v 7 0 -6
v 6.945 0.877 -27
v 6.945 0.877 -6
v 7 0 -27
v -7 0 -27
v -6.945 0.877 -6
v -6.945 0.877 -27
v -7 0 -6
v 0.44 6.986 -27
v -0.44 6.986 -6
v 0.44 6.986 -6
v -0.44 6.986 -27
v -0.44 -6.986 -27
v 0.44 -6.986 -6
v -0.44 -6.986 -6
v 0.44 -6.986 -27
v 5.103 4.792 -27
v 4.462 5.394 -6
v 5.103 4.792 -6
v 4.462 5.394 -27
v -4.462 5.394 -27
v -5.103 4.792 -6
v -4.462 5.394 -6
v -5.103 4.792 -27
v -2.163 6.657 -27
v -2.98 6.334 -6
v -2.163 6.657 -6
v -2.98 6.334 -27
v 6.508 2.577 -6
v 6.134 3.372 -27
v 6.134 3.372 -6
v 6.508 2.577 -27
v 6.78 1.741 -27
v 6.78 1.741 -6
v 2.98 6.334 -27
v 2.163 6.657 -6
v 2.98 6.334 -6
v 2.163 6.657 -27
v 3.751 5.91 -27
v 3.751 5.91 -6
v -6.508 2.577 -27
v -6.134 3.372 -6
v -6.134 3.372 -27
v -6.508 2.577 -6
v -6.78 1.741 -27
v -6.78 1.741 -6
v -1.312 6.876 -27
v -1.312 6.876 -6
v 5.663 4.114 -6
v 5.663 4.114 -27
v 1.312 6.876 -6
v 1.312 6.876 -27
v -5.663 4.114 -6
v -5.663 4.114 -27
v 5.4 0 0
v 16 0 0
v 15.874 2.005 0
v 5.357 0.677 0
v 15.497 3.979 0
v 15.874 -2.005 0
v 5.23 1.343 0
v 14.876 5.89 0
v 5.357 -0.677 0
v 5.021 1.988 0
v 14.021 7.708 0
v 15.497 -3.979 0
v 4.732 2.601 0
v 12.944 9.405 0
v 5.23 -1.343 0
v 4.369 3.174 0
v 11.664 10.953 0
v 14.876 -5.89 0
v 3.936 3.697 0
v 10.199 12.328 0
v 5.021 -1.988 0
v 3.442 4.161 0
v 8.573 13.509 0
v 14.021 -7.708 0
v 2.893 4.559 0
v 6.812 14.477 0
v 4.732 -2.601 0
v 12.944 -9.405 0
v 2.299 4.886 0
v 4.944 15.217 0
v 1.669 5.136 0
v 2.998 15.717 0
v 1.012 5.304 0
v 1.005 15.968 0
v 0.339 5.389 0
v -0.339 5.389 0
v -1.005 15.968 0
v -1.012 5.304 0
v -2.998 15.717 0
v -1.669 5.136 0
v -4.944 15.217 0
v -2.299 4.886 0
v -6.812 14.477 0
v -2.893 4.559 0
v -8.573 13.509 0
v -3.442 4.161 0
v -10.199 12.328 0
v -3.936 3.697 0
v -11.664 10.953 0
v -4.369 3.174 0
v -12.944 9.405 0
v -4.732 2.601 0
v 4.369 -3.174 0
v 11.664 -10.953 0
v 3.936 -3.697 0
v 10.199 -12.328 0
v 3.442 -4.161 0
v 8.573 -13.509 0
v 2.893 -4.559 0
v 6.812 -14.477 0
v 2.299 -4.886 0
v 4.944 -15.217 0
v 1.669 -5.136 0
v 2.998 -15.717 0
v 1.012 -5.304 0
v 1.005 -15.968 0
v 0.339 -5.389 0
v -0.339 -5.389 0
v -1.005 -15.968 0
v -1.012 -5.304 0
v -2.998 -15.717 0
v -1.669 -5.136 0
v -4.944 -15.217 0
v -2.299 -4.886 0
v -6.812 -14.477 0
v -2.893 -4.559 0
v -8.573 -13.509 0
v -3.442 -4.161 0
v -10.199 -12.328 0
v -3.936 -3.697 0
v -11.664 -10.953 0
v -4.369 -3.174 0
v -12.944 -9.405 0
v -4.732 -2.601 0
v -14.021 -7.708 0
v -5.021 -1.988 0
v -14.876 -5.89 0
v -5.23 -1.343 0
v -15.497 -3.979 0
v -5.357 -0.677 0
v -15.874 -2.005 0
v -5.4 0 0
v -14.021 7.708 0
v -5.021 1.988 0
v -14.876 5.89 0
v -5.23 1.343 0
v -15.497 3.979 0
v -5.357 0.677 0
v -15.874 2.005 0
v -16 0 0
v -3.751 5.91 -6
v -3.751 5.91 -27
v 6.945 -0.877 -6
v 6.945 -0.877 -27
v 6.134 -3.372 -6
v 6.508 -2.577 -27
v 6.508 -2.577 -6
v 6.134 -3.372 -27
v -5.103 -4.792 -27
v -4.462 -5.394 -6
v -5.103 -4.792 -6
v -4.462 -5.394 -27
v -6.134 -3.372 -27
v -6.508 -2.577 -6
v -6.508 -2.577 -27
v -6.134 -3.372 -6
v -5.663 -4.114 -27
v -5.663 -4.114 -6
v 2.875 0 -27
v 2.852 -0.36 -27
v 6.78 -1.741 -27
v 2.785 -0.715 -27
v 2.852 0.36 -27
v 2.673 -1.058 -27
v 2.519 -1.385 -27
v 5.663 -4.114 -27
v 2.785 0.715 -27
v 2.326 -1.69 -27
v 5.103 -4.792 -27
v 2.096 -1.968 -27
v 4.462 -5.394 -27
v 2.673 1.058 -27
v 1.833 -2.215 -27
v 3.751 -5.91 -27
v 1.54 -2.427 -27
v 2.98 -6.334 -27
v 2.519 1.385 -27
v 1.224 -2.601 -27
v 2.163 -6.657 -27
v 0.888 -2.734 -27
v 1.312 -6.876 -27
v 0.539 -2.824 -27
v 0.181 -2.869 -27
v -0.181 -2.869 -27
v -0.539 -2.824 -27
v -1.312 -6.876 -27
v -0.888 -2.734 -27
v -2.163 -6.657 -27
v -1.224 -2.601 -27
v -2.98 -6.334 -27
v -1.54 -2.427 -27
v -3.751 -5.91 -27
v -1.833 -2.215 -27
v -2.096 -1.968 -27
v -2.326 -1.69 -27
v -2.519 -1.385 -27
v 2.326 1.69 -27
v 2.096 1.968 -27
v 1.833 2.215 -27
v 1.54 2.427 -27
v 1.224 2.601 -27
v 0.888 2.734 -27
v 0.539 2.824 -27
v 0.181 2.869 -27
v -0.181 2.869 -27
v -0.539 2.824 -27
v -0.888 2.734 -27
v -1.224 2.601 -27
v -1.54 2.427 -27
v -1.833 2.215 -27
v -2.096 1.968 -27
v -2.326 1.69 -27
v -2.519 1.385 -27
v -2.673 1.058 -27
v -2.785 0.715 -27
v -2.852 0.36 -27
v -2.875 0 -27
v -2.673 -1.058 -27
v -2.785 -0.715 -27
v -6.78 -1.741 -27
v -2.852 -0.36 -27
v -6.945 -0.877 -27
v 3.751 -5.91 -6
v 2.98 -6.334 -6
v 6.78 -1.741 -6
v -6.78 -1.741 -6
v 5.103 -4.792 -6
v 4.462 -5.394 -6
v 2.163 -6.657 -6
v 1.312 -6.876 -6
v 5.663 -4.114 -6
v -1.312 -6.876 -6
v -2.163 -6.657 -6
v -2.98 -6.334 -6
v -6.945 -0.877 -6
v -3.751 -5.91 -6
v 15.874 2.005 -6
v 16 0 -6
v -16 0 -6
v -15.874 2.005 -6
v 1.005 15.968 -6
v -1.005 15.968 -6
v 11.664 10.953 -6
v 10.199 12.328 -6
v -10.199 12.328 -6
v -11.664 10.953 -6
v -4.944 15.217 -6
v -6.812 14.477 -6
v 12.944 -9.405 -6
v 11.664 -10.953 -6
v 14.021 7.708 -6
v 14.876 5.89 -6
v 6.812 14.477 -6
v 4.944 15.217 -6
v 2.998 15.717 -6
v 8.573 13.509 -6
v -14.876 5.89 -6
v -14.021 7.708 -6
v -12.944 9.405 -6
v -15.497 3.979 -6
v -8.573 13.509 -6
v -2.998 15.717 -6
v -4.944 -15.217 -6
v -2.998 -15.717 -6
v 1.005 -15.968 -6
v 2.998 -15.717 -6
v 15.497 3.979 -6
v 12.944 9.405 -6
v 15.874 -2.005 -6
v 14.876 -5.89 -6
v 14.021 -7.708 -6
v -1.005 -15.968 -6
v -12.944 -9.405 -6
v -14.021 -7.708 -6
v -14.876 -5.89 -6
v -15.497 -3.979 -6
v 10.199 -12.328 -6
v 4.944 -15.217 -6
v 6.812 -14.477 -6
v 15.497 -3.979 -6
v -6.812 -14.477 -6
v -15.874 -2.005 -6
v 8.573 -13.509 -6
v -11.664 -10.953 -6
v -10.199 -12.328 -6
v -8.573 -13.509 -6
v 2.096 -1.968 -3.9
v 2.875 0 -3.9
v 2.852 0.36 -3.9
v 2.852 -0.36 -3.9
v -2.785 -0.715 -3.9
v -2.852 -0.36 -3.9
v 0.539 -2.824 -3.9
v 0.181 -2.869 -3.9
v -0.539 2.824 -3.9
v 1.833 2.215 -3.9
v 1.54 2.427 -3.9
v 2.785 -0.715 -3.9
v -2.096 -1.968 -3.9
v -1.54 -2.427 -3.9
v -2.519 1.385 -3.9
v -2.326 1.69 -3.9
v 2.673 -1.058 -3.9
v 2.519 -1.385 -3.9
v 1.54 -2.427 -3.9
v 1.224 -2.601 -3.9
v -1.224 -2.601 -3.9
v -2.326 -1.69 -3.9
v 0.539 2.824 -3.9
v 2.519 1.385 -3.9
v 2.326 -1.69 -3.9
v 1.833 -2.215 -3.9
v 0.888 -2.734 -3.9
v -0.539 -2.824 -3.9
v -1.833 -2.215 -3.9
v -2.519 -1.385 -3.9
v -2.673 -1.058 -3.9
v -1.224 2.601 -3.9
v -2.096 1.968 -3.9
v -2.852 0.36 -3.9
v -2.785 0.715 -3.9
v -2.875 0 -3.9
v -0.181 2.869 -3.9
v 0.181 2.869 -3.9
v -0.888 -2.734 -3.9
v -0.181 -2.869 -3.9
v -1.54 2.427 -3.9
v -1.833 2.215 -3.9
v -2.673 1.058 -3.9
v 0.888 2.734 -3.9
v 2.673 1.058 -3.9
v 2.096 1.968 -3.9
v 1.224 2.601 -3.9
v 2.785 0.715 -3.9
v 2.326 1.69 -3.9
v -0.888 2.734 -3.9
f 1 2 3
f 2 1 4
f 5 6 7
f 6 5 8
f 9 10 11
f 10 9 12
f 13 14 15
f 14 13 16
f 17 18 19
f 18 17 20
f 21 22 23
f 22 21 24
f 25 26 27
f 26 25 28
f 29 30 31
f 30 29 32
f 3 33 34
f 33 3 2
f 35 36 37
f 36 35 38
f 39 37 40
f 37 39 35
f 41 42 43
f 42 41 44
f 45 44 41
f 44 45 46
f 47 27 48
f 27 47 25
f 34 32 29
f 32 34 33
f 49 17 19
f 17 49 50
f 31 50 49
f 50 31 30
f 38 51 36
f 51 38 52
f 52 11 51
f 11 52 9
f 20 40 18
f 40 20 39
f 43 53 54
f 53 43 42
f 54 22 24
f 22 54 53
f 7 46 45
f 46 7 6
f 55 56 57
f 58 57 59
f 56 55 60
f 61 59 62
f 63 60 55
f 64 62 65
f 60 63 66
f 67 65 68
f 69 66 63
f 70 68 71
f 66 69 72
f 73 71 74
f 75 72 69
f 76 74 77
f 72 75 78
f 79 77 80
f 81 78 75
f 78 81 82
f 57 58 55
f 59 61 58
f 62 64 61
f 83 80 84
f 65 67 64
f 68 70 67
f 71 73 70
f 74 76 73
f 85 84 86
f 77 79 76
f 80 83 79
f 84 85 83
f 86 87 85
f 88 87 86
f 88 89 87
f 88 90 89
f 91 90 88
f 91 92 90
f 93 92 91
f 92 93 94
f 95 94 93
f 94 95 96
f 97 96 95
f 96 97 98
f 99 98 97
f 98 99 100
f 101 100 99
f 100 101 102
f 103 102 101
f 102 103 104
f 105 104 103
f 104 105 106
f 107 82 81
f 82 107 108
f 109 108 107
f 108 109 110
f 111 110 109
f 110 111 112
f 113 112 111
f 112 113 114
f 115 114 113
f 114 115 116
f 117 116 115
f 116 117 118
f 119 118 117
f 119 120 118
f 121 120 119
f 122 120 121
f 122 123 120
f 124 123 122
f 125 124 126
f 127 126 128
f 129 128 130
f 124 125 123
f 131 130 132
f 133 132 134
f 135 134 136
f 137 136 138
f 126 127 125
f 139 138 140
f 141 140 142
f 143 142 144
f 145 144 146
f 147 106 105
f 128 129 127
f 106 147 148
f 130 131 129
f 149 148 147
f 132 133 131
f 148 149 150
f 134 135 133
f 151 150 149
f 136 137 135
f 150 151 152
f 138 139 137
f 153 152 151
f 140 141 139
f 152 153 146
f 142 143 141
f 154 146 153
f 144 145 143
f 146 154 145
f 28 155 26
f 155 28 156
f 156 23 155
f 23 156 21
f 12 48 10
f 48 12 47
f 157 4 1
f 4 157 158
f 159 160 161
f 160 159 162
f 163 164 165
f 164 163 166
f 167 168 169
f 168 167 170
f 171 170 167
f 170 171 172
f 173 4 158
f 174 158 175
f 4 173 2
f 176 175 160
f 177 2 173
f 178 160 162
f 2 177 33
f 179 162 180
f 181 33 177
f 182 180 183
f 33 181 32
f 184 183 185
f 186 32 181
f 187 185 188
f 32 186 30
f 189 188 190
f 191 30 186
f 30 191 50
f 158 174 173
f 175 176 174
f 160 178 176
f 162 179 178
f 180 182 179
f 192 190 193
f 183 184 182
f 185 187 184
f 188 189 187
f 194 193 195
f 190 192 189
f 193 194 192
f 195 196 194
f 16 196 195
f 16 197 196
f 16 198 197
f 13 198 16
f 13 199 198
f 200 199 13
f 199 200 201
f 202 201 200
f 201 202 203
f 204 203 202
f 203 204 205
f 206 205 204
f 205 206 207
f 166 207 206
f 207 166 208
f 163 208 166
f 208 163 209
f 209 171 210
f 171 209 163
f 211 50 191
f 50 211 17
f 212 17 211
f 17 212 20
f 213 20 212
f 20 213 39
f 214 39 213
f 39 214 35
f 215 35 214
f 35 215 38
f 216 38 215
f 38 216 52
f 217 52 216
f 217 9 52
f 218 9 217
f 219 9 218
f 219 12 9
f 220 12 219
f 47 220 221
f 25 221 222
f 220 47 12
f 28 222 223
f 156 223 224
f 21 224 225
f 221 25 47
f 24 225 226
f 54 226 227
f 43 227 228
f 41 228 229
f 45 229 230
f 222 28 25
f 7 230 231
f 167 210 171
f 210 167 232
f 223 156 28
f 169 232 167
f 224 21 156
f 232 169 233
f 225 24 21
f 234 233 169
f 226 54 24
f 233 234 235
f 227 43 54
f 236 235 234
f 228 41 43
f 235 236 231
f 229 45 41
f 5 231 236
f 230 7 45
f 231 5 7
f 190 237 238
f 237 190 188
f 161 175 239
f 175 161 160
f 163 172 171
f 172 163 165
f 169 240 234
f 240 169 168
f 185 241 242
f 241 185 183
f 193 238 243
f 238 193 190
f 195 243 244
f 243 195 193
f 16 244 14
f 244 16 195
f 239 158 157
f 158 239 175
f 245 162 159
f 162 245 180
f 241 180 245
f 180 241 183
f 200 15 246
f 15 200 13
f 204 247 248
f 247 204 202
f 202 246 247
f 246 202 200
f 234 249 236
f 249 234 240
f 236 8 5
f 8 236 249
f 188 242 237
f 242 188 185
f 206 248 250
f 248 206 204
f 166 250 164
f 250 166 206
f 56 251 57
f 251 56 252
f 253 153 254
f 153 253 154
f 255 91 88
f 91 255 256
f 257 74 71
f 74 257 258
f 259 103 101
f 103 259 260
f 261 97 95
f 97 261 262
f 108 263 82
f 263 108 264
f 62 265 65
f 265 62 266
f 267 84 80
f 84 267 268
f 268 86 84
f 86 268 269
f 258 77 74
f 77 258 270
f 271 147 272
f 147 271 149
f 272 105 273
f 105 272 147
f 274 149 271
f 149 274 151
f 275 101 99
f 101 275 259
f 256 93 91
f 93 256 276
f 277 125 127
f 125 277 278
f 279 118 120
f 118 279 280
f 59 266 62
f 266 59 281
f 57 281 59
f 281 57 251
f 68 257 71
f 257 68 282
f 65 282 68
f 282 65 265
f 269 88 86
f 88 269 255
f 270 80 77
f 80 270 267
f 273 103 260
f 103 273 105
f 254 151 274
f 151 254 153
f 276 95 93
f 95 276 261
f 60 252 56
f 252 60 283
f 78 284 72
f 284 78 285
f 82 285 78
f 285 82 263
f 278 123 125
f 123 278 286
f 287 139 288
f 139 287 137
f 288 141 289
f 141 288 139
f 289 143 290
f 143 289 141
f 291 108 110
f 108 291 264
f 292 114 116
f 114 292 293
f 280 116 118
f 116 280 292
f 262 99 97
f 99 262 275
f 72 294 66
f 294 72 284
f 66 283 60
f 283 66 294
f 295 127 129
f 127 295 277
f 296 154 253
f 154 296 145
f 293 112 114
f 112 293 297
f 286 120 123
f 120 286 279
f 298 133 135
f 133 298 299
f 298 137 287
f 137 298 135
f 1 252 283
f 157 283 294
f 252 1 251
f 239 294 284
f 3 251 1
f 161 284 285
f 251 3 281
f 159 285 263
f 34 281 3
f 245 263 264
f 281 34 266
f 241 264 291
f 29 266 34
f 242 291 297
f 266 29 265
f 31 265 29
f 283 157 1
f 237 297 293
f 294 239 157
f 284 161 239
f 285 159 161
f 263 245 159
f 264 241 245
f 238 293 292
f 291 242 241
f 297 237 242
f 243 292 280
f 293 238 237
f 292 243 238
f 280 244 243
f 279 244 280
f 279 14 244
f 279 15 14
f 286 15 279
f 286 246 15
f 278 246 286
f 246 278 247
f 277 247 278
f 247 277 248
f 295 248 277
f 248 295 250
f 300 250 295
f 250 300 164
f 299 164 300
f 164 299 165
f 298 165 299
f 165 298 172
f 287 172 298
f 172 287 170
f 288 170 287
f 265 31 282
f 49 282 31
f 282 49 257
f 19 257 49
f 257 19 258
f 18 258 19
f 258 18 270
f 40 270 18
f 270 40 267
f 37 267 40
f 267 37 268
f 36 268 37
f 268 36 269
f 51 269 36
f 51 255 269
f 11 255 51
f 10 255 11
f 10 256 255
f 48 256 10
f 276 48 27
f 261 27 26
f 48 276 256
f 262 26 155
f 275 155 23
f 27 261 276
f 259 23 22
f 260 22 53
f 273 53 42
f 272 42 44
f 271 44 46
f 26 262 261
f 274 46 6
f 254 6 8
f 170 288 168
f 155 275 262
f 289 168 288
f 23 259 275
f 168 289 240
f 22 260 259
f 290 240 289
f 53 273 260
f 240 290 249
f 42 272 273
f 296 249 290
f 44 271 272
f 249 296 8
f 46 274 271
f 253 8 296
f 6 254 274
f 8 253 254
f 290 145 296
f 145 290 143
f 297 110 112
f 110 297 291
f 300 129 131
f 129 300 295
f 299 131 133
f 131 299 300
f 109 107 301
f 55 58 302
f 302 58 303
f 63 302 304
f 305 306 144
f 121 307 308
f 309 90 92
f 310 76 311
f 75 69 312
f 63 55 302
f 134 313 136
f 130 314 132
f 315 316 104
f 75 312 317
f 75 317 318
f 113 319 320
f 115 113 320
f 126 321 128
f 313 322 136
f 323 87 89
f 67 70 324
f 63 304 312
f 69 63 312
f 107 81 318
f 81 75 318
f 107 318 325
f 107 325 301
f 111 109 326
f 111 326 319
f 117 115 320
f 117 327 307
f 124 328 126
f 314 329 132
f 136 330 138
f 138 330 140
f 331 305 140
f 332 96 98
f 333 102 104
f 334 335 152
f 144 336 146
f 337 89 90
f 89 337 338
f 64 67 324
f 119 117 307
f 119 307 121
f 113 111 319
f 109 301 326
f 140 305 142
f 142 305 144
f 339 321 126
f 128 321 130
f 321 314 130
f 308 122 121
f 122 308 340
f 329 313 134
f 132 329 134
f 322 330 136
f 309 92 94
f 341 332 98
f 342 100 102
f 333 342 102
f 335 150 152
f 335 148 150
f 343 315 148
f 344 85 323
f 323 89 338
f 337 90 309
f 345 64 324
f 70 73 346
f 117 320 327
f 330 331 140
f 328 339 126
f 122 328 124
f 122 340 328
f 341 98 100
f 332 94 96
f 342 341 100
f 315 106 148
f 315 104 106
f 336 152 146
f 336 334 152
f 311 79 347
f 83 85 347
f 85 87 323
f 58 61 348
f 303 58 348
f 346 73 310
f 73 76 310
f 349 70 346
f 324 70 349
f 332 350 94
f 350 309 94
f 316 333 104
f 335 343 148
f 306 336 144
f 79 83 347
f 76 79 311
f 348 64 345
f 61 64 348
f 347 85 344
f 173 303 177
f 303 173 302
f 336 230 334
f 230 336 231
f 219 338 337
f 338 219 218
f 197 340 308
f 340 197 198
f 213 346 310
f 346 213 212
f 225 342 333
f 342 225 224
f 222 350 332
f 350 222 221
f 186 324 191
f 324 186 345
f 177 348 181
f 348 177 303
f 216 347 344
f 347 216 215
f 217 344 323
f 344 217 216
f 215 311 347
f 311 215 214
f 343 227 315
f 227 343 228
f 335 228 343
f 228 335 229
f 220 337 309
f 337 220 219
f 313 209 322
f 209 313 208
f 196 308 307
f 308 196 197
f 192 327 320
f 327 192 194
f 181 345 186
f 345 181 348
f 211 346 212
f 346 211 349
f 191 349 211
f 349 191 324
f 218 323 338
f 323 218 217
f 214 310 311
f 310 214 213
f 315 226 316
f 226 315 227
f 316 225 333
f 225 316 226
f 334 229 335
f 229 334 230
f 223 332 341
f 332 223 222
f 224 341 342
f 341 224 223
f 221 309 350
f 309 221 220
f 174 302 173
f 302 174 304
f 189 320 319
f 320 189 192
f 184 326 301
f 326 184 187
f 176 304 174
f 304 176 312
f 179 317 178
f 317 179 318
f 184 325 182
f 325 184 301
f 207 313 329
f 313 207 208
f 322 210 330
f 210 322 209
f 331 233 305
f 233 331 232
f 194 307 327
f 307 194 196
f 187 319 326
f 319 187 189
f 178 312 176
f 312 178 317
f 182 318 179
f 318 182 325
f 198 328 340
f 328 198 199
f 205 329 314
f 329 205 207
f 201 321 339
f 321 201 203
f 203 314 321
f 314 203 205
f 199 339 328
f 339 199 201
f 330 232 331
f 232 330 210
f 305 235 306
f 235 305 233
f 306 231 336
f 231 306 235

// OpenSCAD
$fn = 50;


difference() {
	union() {
		translate(v = [0, 0, -27.0000000000]) {
			cylinder(h = 27, r = 7.0000000000);
		}
		translate(v = [0, 0, -6.0000000000]) {
			cylinder(h = 6, r = 16.0000000000);
		}
	}
	union() {
		translate(v = [0, 0, 0]) {
			rotate(a = [0, 0, 0]) {
				difference() {
					union() {
						#translate(v = [0, 0, -27.0000000000]) {
							cylinder(h = 27, r = 2.6000000000);
						}
						#translate(v = [0, 0, -3.9000000000]) {
							cylinder(h = 3.9000000000, r = 7.0000000000, r1 = 2.8750000000, r2 = 5.4000000000);
						}
						#translate(v = [0, 0, -27.0000000000]) {
							cylinder(h = 27, r = 2.8750000000);
						}
						#translate(v = [0, 0, -27.0000000000]) {
							cylinder(h = 27, r = 2.6000000000);
						}
					}
					union();
				}
			}
		}
	}
}
